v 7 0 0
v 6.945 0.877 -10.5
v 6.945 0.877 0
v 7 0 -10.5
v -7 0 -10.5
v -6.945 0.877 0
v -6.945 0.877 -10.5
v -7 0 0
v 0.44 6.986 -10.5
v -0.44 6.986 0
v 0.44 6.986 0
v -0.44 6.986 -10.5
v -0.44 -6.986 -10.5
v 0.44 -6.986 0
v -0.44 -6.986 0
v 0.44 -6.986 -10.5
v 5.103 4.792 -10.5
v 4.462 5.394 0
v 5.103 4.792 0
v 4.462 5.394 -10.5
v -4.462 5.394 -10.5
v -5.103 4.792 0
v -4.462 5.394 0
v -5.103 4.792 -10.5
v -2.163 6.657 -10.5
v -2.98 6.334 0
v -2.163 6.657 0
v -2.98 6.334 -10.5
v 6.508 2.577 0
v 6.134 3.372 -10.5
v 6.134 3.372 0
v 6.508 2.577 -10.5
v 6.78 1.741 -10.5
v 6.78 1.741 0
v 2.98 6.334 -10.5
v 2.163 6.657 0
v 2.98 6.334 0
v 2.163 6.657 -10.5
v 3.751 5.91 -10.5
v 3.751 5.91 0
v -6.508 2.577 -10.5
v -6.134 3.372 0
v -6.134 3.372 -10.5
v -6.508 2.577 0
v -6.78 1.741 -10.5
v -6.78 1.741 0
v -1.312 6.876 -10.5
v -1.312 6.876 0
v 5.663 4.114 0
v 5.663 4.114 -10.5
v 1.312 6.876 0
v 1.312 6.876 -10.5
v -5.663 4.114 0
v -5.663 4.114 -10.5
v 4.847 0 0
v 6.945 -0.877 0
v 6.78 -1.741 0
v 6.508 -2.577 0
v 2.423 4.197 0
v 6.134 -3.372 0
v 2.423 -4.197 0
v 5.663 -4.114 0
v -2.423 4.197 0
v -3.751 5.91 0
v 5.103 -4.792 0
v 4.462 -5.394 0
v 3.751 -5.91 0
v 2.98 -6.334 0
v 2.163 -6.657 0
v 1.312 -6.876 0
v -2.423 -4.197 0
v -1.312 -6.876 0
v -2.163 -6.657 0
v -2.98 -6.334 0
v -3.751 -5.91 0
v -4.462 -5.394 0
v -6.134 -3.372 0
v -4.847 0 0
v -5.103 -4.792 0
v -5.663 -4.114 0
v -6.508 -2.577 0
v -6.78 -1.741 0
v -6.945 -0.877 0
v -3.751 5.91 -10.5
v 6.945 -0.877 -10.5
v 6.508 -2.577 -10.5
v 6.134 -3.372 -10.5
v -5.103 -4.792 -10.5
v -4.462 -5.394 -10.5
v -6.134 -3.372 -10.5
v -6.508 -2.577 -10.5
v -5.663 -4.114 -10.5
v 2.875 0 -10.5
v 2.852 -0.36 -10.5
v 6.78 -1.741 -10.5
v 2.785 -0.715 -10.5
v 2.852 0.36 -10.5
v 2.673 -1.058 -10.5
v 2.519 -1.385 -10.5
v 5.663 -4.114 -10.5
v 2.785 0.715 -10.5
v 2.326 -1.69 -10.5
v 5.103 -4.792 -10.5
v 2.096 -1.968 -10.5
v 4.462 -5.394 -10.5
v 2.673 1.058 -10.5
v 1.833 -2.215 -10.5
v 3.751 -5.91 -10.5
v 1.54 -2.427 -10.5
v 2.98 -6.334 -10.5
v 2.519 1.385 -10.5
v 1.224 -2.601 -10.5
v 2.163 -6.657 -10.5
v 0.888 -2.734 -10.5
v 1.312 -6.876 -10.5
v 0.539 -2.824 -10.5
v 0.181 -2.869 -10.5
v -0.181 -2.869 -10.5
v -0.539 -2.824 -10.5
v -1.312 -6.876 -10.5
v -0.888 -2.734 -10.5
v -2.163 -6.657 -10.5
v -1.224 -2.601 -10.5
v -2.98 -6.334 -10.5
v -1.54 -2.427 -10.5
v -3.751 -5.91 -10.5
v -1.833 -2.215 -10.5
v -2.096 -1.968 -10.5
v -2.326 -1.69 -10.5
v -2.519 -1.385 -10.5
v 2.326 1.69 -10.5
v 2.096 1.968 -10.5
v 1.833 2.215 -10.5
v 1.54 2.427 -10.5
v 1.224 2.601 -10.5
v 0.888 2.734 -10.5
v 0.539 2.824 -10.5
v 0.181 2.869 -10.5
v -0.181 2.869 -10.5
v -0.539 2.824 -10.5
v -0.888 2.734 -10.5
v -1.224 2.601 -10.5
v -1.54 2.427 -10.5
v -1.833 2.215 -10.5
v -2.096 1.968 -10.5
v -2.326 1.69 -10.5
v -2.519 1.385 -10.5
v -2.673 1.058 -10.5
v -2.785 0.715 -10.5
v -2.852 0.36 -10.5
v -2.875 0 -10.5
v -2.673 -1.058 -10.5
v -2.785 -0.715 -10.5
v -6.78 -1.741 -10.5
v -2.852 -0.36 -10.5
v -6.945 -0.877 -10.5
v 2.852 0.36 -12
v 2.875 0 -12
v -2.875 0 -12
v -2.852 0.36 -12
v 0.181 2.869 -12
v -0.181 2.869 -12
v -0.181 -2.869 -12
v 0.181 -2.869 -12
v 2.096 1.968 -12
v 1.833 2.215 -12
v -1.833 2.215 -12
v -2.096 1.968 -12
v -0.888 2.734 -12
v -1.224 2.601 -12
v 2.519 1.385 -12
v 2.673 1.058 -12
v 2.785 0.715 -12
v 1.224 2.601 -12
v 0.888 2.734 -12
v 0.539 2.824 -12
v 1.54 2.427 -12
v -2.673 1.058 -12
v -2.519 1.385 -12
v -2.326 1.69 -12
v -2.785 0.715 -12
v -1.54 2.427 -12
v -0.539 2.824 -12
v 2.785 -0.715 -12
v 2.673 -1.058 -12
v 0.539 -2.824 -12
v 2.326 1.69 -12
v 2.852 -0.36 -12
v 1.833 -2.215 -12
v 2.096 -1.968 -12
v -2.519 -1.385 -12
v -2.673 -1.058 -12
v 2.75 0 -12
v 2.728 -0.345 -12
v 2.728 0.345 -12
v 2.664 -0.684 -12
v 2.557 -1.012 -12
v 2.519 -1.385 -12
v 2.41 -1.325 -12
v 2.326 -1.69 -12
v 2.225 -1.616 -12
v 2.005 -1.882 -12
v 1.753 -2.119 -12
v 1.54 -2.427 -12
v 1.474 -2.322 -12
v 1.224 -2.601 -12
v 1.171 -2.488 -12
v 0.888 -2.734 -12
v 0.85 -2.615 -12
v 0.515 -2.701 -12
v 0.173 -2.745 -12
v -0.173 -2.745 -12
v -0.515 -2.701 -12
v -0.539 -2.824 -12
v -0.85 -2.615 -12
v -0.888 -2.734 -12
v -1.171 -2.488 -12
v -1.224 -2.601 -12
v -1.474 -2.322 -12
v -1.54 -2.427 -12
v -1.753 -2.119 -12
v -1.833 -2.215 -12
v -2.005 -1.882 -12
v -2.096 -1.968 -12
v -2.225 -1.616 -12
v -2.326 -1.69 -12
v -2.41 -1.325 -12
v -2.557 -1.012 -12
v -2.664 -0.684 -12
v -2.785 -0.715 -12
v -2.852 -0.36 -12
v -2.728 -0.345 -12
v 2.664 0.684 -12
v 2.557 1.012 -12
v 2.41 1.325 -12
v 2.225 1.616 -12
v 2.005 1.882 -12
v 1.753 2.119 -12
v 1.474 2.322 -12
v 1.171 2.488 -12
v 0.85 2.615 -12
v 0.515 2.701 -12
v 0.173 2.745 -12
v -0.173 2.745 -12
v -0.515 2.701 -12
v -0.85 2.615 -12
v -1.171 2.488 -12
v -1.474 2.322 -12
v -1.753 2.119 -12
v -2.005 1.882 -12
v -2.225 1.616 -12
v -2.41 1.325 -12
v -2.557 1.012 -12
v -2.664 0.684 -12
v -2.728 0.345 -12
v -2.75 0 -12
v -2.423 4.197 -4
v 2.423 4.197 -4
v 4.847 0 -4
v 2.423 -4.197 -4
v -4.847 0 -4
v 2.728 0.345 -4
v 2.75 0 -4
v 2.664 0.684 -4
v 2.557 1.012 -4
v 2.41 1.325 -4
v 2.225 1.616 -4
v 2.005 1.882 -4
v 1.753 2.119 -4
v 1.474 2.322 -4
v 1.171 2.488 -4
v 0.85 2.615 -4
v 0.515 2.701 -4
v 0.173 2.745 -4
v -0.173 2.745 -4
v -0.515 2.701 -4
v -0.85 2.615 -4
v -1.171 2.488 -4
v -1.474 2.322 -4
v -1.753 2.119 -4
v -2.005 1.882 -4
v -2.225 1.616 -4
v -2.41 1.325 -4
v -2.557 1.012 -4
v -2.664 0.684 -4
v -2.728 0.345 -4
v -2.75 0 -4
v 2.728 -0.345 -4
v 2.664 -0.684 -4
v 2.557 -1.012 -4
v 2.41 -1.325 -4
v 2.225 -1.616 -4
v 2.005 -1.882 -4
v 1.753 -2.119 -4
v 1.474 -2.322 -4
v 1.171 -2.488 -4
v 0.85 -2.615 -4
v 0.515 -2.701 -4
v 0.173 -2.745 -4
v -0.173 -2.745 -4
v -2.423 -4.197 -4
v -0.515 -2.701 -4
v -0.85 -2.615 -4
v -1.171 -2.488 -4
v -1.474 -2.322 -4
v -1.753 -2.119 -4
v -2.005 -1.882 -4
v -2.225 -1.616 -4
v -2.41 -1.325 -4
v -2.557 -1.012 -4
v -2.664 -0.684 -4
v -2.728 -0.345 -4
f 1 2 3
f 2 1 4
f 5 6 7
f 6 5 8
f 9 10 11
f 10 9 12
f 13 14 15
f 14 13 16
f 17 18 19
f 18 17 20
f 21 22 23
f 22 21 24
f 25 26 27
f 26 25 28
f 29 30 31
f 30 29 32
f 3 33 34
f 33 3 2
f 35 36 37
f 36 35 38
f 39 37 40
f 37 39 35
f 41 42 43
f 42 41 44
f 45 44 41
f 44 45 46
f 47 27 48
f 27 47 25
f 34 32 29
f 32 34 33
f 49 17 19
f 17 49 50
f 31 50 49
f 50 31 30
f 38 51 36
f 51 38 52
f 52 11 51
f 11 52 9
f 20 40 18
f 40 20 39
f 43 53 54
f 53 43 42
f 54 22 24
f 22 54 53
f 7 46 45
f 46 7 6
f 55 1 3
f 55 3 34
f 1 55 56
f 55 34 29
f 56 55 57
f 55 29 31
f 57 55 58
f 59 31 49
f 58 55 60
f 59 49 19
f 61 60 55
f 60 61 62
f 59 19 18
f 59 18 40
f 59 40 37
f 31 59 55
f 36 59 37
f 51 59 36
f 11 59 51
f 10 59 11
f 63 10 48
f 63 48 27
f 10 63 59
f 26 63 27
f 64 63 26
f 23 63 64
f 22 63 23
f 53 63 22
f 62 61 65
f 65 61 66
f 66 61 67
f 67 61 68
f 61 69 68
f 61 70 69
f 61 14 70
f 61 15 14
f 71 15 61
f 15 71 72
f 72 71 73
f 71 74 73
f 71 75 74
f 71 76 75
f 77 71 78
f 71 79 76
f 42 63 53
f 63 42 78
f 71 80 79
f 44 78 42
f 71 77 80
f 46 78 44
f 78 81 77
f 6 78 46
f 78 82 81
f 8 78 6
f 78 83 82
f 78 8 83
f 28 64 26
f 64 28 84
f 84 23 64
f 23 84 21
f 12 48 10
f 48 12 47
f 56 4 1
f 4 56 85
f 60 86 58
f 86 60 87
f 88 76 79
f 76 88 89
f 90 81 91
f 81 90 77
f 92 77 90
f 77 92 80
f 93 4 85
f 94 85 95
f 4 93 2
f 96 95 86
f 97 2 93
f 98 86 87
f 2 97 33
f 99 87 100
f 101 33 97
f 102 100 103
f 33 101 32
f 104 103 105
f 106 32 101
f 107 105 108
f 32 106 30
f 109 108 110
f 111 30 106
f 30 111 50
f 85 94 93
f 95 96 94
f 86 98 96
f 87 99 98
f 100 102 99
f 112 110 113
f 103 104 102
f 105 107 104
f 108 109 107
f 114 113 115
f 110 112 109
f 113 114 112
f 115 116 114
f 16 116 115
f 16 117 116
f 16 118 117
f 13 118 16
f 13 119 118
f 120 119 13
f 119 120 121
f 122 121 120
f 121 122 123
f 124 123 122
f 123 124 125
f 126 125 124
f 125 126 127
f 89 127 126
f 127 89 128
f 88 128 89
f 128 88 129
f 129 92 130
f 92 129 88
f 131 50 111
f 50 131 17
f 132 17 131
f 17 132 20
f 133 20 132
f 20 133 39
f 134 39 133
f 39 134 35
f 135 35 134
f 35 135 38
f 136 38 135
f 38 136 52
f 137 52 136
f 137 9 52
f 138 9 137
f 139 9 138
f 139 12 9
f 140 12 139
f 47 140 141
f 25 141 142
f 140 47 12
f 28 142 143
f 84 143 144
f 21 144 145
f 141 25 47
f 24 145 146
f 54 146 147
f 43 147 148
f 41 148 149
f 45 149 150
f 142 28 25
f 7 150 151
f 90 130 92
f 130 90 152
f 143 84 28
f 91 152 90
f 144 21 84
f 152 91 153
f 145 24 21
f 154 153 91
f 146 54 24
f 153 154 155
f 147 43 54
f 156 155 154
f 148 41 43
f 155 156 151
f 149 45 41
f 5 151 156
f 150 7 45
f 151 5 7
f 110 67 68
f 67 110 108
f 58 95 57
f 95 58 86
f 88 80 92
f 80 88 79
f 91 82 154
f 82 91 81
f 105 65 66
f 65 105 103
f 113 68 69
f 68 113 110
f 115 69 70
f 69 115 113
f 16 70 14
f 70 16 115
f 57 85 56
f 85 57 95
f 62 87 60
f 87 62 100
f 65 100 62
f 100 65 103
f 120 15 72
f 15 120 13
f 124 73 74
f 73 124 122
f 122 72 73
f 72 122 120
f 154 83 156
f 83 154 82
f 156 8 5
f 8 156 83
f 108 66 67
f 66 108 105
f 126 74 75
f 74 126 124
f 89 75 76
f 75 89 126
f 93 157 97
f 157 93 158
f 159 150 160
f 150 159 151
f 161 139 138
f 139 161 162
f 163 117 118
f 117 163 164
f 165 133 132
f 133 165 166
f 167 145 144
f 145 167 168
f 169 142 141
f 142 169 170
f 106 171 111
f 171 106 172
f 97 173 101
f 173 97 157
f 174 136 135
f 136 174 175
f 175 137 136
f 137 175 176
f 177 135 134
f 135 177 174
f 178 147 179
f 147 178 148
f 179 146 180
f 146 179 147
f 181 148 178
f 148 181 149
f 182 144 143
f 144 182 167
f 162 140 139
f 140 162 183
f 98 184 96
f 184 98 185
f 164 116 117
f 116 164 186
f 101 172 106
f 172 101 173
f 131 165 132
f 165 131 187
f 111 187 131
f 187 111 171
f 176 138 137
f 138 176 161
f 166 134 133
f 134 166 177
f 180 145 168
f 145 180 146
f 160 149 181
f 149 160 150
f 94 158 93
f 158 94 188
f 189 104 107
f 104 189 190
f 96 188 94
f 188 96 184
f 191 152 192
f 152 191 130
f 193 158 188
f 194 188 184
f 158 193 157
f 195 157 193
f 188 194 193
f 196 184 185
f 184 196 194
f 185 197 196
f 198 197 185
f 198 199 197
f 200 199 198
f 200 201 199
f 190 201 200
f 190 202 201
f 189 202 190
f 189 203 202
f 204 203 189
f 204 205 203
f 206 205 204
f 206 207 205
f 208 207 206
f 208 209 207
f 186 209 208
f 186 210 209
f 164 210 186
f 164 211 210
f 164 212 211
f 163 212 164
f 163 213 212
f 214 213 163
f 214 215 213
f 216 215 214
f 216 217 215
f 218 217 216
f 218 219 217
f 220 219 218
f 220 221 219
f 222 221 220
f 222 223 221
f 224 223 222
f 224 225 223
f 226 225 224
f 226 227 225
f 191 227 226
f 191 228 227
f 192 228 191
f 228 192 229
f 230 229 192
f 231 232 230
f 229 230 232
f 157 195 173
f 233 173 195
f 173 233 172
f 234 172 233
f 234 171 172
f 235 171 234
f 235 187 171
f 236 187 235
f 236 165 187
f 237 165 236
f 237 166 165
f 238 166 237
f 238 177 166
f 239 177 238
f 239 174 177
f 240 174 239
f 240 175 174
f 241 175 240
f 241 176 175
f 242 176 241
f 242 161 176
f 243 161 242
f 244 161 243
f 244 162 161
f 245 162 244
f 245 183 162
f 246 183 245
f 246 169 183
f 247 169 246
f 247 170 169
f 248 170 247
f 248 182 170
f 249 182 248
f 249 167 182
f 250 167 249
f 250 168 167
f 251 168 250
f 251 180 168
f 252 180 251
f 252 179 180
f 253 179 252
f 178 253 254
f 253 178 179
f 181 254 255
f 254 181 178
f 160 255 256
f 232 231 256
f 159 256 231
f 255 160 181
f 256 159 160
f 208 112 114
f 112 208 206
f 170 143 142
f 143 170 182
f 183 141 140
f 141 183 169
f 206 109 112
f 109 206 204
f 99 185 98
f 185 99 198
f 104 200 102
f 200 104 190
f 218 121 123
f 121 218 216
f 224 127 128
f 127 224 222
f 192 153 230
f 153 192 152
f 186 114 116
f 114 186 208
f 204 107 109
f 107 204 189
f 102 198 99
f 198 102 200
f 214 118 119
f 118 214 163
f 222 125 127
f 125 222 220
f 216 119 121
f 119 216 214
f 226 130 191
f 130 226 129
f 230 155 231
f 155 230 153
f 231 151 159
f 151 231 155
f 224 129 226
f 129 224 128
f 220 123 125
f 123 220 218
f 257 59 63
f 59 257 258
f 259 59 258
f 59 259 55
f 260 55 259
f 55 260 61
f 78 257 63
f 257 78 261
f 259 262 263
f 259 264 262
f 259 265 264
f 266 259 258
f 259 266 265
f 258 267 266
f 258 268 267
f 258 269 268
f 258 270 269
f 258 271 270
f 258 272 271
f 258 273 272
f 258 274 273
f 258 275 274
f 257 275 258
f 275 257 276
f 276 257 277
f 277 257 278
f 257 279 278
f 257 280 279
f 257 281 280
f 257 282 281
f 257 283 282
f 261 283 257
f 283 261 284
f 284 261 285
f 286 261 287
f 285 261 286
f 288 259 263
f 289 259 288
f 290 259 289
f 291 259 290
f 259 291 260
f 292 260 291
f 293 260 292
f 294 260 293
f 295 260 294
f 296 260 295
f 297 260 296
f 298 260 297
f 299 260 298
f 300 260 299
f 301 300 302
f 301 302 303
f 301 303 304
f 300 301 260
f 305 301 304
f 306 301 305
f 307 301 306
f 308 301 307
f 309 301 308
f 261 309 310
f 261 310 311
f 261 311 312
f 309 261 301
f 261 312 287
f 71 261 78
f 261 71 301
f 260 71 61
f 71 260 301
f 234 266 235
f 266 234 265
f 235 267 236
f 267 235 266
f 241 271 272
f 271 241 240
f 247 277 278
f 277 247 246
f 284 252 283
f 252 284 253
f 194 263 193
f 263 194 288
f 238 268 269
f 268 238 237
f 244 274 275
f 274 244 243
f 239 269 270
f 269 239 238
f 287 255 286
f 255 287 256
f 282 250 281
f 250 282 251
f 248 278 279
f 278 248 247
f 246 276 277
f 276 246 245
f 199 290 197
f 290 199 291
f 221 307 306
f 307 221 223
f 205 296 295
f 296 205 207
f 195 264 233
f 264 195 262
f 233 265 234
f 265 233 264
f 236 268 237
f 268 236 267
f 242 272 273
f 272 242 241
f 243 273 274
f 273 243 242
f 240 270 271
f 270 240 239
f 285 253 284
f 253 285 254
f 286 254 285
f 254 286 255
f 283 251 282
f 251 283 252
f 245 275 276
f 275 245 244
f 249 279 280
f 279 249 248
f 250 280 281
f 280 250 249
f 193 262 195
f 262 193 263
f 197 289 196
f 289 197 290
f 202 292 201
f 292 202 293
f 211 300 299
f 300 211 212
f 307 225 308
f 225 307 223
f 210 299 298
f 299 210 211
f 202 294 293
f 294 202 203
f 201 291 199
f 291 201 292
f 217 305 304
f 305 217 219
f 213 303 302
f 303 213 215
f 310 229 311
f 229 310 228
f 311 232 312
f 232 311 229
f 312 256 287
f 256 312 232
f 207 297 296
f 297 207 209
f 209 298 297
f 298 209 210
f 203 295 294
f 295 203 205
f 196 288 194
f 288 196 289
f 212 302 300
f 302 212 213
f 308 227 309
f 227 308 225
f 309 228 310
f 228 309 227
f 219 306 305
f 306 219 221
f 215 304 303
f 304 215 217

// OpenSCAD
$fn = 50;


difference() {
	union() {
		translate(v = [0, 0, -10.5000000000]) {
			cylinder(h = 10.5000000000, r = 7.0000000000);
		}
		translate(v = [0, 0, -12.0000000000]) {
			cylinder(h = 12, r = 2.8750000000);
		}
	}
	union() {
		translate(v = [0, 0, 0]) {
			rotate(a = [0, 0, 0]) {
				difference() {
					union() {
						translate(v = [0, 0, -4]) {
							linear_extrude(height = 4) {
								polygon(points = [[4.8468000000, 0.0000000000], [2.4234000000, 4.1974519271], [-2.4234000000, 4.1974519271], [-4.8468000000, 0.0000000000], [-2.4234000000, -4.1974519271], [2.4234000000, -4.1974519271]]);
							}
						}
					}
					union();
				}
			}
		}
		#translate(v = [0, 0, -100.0000000000]) {
			cylinder(h = 200, r = 2.7500000000);
		}
	}
}
